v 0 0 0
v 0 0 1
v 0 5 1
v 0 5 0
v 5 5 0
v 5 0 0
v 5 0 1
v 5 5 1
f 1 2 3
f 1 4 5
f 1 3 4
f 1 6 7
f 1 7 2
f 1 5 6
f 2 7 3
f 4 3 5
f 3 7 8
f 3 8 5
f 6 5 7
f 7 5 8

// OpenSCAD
/* Warning, this is a very basic generator with a lot of approximation 
input data : [VQFN, S5B, 5x5x1mm, 32, , B, C04-21400B]
generated by com.zoubworld.electronics.cad.model3d.Basic
Date : Sun Feb 15 10:50:49 CET 2026
*/

//body
color("black")
translate([0,0,0])
cube([5.0,5.0,1.0], center=false);
